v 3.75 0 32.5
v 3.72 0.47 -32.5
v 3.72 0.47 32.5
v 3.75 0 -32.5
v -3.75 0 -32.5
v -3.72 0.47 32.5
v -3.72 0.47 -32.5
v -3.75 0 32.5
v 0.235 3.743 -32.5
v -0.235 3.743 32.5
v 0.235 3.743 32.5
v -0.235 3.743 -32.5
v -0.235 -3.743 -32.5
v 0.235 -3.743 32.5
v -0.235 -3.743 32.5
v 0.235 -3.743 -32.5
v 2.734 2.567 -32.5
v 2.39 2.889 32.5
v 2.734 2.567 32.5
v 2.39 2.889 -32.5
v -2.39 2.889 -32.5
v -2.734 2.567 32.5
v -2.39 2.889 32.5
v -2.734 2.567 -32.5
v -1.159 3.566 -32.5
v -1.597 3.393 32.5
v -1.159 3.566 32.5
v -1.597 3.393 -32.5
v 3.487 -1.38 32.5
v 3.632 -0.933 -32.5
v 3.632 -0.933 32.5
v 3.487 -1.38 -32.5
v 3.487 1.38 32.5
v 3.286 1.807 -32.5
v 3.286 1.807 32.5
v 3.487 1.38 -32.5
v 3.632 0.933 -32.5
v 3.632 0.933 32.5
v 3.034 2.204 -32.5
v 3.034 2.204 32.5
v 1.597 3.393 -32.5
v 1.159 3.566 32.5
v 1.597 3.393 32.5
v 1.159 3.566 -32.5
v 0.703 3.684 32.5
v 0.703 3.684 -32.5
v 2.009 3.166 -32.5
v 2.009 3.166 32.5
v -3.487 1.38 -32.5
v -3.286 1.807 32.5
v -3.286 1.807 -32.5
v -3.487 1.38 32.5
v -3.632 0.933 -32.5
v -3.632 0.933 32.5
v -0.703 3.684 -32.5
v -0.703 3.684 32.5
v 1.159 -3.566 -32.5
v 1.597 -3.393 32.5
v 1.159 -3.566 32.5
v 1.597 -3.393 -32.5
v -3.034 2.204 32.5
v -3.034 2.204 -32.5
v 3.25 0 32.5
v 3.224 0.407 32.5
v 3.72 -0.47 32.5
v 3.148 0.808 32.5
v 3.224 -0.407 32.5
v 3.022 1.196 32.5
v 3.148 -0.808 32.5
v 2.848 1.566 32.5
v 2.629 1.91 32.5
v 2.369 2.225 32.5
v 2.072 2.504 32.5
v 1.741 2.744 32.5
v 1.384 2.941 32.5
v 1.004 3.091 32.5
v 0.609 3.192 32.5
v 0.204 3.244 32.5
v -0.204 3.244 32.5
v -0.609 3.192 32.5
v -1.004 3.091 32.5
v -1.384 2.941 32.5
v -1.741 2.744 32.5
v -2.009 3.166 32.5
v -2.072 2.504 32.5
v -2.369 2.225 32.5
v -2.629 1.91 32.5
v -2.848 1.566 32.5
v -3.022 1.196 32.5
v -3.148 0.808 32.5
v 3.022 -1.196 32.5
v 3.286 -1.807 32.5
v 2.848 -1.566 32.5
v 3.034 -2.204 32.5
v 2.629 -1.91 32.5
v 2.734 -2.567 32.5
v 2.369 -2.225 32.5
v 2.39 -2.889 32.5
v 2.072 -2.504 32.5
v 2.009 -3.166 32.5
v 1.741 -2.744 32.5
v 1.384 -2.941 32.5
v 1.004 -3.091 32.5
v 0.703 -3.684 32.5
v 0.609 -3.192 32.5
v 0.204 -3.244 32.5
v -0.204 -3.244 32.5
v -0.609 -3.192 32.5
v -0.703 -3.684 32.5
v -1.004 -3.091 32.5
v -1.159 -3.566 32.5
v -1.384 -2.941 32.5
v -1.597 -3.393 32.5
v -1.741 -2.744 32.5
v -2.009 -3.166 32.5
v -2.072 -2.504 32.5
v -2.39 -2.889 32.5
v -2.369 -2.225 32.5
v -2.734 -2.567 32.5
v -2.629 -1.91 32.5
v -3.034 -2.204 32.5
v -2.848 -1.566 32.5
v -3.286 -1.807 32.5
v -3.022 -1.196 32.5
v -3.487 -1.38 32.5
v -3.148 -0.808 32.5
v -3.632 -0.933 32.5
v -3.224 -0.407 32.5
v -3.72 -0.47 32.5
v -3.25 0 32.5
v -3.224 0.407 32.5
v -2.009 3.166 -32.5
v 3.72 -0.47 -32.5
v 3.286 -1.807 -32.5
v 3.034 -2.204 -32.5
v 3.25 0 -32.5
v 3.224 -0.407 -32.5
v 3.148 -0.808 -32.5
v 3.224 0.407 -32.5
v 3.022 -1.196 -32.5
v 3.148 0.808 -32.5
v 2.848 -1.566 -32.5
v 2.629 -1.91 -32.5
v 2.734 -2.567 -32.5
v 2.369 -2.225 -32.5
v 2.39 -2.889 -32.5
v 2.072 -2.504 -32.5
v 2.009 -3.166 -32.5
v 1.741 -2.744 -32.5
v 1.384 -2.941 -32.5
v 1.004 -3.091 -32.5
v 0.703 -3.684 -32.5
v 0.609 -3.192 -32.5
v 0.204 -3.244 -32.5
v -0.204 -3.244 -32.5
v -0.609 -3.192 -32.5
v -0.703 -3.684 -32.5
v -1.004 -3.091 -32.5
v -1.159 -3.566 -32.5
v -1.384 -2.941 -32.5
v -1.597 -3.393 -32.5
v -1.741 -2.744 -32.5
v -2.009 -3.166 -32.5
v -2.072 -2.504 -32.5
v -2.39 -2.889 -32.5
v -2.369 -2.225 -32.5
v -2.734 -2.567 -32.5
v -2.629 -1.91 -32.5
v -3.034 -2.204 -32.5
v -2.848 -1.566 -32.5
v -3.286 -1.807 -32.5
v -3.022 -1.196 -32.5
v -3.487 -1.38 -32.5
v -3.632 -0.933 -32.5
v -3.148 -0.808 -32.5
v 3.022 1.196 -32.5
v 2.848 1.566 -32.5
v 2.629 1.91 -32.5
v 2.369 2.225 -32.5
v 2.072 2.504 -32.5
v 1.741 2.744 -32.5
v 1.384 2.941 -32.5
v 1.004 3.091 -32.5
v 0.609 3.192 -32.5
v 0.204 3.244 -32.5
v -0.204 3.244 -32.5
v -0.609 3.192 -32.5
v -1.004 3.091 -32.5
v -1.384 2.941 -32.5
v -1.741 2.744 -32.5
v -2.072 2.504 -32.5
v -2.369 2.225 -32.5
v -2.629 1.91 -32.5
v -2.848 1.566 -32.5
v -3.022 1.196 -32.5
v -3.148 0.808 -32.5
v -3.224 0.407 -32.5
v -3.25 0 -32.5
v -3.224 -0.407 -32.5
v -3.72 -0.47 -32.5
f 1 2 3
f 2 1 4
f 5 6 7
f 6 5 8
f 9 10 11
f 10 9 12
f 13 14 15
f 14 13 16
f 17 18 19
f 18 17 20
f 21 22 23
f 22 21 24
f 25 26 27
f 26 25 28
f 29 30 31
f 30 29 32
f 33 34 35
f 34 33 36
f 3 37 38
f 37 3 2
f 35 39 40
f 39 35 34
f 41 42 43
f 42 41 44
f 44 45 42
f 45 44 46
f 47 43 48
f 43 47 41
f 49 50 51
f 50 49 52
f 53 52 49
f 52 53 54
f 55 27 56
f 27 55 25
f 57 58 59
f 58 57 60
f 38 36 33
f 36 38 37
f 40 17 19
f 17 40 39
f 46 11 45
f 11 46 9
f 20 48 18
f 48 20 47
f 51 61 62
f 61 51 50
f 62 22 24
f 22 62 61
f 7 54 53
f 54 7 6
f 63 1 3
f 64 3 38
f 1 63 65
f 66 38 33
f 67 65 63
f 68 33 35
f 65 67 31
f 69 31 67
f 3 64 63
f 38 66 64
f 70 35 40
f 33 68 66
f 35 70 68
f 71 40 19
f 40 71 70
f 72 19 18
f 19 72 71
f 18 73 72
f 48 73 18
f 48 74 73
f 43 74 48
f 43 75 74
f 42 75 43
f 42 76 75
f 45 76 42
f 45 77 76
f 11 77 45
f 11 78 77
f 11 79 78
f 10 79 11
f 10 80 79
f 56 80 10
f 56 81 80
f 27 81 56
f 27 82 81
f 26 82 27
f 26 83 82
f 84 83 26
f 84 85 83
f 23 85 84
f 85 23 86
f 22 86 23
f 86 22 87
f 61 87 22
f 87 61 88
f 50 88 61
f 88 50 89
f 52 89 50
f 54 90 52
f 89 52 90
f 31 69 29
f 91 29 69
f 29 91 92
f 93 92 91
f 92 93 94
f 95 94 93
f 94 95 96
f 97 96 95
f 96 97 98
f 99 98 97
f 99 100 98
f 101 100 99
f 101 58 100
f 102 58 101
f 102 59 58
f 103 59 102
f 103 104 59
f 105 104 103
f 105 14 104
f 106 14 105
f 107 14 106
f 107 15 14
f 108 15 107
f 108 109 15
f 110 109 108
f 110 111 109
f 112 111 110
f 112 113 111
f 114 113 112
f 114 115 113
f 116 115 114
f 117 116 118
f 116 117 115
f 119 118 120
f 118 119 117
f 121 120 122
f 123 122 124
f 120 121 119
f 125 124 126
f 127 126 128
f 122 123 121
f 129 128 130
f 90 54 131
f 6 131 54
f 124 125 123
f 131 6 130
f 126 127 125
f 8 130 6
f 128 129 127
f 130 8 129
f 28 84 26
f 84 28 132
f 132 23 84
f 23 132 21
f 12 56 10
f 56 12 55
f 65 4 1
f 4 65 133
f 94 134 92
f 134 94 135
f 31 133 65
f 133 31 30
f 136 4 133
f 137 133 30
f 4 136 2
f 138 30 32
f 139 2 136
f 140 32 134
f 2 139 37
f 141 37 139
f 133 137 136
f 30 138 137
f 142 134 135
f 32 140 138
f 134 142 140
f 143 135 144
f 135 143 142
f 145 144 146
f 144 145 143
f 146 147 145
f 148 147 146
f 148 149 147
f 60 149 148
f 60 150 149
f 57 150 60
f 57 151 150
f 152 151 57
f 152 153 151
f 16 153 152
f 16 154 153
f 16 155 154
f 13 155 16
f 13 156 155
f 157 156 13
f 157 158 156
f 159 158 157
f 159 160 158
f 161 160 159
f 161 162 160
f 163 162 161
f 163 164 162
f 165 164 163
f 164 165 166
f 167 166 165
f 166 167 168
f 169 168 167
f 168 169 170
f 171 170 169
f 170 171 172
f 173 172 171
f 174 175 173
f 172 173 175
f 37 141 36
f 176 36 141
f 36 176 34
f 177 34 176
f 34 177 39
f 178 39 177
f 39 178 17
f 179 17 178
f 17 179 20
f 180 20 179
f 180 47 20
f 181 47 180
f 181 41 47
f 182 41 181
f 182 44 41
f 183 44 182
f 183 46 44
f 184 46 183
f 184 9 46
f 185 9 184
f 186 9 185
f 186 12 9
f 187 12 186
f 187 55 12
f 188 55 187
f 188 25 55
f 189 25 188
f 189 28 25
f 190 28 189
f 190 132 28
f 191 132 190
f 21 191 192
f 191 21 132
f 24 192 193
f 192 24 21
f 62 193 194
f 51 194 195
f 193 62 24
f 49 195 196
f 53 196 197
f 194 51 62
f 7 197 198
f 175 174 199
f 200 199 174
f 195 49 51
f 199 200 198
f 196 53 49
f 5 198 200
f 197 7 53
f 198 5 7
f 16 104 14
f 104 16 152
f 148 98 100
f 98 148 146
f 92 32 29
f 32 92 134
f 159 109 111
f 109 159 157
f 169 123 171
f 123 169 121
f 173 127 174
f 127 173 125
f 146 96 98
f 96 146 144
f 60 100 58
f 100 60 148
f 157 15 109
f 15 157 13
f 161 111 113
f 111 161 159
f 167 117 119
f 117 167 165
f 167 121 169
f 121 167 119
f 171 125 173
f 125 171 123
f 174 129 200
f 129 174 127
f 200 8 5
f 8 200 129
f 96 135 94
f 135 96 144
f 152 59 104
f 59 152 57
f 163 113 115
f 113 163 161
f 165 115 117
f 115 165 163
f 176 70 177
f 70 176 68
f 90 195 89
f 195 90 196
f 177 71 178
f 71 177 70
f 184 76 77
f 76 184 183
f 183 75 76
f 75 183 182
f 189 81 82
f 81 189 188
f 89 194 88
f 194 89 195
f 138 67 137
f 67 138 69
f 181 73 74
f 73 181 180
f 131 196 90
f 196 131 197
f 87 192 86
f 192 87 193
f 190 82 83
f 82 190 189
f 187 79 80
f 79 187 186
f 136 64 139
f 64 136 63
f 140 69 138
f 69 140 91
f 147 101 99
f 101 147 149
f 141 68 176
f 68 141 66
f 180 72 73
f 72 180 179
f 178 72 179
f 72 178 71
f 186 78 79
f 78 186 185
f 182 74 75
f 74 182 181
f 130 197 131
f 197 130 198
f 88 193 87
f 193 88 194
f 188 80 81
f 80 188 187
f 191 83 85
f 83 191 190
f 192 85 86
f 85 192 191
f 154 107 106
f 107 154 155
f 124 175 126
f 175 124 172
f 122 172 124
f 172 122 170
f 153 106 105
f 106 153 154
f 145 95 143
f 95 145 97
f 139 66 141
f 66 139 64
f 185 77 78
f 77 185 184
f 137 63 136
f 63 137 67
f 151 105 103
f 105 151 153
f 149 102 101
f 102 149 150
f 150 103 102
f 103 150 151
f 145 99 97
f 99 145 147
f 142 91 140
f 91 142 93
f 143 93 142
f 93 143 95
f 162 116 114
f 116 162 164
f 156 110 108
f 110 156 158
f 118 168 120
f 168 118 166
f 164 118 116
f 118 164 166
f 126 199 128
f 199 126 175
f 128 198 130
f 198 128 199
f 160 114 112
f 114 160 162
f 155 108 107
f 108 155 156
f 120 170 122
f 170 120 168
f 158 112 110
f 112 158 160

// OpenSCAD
$fn = 50;


difference() {
	union() {
		translate(v = [0, 0, -32.5000000000]) {
			cylinder(h = 65, r = 3.7500000000);
		}
	}
	union() {
		translate(v = [0, 0, -100.0000000000]) {
			cylinder(h = 200, r = 3.2500000000);
		}
	}
}
